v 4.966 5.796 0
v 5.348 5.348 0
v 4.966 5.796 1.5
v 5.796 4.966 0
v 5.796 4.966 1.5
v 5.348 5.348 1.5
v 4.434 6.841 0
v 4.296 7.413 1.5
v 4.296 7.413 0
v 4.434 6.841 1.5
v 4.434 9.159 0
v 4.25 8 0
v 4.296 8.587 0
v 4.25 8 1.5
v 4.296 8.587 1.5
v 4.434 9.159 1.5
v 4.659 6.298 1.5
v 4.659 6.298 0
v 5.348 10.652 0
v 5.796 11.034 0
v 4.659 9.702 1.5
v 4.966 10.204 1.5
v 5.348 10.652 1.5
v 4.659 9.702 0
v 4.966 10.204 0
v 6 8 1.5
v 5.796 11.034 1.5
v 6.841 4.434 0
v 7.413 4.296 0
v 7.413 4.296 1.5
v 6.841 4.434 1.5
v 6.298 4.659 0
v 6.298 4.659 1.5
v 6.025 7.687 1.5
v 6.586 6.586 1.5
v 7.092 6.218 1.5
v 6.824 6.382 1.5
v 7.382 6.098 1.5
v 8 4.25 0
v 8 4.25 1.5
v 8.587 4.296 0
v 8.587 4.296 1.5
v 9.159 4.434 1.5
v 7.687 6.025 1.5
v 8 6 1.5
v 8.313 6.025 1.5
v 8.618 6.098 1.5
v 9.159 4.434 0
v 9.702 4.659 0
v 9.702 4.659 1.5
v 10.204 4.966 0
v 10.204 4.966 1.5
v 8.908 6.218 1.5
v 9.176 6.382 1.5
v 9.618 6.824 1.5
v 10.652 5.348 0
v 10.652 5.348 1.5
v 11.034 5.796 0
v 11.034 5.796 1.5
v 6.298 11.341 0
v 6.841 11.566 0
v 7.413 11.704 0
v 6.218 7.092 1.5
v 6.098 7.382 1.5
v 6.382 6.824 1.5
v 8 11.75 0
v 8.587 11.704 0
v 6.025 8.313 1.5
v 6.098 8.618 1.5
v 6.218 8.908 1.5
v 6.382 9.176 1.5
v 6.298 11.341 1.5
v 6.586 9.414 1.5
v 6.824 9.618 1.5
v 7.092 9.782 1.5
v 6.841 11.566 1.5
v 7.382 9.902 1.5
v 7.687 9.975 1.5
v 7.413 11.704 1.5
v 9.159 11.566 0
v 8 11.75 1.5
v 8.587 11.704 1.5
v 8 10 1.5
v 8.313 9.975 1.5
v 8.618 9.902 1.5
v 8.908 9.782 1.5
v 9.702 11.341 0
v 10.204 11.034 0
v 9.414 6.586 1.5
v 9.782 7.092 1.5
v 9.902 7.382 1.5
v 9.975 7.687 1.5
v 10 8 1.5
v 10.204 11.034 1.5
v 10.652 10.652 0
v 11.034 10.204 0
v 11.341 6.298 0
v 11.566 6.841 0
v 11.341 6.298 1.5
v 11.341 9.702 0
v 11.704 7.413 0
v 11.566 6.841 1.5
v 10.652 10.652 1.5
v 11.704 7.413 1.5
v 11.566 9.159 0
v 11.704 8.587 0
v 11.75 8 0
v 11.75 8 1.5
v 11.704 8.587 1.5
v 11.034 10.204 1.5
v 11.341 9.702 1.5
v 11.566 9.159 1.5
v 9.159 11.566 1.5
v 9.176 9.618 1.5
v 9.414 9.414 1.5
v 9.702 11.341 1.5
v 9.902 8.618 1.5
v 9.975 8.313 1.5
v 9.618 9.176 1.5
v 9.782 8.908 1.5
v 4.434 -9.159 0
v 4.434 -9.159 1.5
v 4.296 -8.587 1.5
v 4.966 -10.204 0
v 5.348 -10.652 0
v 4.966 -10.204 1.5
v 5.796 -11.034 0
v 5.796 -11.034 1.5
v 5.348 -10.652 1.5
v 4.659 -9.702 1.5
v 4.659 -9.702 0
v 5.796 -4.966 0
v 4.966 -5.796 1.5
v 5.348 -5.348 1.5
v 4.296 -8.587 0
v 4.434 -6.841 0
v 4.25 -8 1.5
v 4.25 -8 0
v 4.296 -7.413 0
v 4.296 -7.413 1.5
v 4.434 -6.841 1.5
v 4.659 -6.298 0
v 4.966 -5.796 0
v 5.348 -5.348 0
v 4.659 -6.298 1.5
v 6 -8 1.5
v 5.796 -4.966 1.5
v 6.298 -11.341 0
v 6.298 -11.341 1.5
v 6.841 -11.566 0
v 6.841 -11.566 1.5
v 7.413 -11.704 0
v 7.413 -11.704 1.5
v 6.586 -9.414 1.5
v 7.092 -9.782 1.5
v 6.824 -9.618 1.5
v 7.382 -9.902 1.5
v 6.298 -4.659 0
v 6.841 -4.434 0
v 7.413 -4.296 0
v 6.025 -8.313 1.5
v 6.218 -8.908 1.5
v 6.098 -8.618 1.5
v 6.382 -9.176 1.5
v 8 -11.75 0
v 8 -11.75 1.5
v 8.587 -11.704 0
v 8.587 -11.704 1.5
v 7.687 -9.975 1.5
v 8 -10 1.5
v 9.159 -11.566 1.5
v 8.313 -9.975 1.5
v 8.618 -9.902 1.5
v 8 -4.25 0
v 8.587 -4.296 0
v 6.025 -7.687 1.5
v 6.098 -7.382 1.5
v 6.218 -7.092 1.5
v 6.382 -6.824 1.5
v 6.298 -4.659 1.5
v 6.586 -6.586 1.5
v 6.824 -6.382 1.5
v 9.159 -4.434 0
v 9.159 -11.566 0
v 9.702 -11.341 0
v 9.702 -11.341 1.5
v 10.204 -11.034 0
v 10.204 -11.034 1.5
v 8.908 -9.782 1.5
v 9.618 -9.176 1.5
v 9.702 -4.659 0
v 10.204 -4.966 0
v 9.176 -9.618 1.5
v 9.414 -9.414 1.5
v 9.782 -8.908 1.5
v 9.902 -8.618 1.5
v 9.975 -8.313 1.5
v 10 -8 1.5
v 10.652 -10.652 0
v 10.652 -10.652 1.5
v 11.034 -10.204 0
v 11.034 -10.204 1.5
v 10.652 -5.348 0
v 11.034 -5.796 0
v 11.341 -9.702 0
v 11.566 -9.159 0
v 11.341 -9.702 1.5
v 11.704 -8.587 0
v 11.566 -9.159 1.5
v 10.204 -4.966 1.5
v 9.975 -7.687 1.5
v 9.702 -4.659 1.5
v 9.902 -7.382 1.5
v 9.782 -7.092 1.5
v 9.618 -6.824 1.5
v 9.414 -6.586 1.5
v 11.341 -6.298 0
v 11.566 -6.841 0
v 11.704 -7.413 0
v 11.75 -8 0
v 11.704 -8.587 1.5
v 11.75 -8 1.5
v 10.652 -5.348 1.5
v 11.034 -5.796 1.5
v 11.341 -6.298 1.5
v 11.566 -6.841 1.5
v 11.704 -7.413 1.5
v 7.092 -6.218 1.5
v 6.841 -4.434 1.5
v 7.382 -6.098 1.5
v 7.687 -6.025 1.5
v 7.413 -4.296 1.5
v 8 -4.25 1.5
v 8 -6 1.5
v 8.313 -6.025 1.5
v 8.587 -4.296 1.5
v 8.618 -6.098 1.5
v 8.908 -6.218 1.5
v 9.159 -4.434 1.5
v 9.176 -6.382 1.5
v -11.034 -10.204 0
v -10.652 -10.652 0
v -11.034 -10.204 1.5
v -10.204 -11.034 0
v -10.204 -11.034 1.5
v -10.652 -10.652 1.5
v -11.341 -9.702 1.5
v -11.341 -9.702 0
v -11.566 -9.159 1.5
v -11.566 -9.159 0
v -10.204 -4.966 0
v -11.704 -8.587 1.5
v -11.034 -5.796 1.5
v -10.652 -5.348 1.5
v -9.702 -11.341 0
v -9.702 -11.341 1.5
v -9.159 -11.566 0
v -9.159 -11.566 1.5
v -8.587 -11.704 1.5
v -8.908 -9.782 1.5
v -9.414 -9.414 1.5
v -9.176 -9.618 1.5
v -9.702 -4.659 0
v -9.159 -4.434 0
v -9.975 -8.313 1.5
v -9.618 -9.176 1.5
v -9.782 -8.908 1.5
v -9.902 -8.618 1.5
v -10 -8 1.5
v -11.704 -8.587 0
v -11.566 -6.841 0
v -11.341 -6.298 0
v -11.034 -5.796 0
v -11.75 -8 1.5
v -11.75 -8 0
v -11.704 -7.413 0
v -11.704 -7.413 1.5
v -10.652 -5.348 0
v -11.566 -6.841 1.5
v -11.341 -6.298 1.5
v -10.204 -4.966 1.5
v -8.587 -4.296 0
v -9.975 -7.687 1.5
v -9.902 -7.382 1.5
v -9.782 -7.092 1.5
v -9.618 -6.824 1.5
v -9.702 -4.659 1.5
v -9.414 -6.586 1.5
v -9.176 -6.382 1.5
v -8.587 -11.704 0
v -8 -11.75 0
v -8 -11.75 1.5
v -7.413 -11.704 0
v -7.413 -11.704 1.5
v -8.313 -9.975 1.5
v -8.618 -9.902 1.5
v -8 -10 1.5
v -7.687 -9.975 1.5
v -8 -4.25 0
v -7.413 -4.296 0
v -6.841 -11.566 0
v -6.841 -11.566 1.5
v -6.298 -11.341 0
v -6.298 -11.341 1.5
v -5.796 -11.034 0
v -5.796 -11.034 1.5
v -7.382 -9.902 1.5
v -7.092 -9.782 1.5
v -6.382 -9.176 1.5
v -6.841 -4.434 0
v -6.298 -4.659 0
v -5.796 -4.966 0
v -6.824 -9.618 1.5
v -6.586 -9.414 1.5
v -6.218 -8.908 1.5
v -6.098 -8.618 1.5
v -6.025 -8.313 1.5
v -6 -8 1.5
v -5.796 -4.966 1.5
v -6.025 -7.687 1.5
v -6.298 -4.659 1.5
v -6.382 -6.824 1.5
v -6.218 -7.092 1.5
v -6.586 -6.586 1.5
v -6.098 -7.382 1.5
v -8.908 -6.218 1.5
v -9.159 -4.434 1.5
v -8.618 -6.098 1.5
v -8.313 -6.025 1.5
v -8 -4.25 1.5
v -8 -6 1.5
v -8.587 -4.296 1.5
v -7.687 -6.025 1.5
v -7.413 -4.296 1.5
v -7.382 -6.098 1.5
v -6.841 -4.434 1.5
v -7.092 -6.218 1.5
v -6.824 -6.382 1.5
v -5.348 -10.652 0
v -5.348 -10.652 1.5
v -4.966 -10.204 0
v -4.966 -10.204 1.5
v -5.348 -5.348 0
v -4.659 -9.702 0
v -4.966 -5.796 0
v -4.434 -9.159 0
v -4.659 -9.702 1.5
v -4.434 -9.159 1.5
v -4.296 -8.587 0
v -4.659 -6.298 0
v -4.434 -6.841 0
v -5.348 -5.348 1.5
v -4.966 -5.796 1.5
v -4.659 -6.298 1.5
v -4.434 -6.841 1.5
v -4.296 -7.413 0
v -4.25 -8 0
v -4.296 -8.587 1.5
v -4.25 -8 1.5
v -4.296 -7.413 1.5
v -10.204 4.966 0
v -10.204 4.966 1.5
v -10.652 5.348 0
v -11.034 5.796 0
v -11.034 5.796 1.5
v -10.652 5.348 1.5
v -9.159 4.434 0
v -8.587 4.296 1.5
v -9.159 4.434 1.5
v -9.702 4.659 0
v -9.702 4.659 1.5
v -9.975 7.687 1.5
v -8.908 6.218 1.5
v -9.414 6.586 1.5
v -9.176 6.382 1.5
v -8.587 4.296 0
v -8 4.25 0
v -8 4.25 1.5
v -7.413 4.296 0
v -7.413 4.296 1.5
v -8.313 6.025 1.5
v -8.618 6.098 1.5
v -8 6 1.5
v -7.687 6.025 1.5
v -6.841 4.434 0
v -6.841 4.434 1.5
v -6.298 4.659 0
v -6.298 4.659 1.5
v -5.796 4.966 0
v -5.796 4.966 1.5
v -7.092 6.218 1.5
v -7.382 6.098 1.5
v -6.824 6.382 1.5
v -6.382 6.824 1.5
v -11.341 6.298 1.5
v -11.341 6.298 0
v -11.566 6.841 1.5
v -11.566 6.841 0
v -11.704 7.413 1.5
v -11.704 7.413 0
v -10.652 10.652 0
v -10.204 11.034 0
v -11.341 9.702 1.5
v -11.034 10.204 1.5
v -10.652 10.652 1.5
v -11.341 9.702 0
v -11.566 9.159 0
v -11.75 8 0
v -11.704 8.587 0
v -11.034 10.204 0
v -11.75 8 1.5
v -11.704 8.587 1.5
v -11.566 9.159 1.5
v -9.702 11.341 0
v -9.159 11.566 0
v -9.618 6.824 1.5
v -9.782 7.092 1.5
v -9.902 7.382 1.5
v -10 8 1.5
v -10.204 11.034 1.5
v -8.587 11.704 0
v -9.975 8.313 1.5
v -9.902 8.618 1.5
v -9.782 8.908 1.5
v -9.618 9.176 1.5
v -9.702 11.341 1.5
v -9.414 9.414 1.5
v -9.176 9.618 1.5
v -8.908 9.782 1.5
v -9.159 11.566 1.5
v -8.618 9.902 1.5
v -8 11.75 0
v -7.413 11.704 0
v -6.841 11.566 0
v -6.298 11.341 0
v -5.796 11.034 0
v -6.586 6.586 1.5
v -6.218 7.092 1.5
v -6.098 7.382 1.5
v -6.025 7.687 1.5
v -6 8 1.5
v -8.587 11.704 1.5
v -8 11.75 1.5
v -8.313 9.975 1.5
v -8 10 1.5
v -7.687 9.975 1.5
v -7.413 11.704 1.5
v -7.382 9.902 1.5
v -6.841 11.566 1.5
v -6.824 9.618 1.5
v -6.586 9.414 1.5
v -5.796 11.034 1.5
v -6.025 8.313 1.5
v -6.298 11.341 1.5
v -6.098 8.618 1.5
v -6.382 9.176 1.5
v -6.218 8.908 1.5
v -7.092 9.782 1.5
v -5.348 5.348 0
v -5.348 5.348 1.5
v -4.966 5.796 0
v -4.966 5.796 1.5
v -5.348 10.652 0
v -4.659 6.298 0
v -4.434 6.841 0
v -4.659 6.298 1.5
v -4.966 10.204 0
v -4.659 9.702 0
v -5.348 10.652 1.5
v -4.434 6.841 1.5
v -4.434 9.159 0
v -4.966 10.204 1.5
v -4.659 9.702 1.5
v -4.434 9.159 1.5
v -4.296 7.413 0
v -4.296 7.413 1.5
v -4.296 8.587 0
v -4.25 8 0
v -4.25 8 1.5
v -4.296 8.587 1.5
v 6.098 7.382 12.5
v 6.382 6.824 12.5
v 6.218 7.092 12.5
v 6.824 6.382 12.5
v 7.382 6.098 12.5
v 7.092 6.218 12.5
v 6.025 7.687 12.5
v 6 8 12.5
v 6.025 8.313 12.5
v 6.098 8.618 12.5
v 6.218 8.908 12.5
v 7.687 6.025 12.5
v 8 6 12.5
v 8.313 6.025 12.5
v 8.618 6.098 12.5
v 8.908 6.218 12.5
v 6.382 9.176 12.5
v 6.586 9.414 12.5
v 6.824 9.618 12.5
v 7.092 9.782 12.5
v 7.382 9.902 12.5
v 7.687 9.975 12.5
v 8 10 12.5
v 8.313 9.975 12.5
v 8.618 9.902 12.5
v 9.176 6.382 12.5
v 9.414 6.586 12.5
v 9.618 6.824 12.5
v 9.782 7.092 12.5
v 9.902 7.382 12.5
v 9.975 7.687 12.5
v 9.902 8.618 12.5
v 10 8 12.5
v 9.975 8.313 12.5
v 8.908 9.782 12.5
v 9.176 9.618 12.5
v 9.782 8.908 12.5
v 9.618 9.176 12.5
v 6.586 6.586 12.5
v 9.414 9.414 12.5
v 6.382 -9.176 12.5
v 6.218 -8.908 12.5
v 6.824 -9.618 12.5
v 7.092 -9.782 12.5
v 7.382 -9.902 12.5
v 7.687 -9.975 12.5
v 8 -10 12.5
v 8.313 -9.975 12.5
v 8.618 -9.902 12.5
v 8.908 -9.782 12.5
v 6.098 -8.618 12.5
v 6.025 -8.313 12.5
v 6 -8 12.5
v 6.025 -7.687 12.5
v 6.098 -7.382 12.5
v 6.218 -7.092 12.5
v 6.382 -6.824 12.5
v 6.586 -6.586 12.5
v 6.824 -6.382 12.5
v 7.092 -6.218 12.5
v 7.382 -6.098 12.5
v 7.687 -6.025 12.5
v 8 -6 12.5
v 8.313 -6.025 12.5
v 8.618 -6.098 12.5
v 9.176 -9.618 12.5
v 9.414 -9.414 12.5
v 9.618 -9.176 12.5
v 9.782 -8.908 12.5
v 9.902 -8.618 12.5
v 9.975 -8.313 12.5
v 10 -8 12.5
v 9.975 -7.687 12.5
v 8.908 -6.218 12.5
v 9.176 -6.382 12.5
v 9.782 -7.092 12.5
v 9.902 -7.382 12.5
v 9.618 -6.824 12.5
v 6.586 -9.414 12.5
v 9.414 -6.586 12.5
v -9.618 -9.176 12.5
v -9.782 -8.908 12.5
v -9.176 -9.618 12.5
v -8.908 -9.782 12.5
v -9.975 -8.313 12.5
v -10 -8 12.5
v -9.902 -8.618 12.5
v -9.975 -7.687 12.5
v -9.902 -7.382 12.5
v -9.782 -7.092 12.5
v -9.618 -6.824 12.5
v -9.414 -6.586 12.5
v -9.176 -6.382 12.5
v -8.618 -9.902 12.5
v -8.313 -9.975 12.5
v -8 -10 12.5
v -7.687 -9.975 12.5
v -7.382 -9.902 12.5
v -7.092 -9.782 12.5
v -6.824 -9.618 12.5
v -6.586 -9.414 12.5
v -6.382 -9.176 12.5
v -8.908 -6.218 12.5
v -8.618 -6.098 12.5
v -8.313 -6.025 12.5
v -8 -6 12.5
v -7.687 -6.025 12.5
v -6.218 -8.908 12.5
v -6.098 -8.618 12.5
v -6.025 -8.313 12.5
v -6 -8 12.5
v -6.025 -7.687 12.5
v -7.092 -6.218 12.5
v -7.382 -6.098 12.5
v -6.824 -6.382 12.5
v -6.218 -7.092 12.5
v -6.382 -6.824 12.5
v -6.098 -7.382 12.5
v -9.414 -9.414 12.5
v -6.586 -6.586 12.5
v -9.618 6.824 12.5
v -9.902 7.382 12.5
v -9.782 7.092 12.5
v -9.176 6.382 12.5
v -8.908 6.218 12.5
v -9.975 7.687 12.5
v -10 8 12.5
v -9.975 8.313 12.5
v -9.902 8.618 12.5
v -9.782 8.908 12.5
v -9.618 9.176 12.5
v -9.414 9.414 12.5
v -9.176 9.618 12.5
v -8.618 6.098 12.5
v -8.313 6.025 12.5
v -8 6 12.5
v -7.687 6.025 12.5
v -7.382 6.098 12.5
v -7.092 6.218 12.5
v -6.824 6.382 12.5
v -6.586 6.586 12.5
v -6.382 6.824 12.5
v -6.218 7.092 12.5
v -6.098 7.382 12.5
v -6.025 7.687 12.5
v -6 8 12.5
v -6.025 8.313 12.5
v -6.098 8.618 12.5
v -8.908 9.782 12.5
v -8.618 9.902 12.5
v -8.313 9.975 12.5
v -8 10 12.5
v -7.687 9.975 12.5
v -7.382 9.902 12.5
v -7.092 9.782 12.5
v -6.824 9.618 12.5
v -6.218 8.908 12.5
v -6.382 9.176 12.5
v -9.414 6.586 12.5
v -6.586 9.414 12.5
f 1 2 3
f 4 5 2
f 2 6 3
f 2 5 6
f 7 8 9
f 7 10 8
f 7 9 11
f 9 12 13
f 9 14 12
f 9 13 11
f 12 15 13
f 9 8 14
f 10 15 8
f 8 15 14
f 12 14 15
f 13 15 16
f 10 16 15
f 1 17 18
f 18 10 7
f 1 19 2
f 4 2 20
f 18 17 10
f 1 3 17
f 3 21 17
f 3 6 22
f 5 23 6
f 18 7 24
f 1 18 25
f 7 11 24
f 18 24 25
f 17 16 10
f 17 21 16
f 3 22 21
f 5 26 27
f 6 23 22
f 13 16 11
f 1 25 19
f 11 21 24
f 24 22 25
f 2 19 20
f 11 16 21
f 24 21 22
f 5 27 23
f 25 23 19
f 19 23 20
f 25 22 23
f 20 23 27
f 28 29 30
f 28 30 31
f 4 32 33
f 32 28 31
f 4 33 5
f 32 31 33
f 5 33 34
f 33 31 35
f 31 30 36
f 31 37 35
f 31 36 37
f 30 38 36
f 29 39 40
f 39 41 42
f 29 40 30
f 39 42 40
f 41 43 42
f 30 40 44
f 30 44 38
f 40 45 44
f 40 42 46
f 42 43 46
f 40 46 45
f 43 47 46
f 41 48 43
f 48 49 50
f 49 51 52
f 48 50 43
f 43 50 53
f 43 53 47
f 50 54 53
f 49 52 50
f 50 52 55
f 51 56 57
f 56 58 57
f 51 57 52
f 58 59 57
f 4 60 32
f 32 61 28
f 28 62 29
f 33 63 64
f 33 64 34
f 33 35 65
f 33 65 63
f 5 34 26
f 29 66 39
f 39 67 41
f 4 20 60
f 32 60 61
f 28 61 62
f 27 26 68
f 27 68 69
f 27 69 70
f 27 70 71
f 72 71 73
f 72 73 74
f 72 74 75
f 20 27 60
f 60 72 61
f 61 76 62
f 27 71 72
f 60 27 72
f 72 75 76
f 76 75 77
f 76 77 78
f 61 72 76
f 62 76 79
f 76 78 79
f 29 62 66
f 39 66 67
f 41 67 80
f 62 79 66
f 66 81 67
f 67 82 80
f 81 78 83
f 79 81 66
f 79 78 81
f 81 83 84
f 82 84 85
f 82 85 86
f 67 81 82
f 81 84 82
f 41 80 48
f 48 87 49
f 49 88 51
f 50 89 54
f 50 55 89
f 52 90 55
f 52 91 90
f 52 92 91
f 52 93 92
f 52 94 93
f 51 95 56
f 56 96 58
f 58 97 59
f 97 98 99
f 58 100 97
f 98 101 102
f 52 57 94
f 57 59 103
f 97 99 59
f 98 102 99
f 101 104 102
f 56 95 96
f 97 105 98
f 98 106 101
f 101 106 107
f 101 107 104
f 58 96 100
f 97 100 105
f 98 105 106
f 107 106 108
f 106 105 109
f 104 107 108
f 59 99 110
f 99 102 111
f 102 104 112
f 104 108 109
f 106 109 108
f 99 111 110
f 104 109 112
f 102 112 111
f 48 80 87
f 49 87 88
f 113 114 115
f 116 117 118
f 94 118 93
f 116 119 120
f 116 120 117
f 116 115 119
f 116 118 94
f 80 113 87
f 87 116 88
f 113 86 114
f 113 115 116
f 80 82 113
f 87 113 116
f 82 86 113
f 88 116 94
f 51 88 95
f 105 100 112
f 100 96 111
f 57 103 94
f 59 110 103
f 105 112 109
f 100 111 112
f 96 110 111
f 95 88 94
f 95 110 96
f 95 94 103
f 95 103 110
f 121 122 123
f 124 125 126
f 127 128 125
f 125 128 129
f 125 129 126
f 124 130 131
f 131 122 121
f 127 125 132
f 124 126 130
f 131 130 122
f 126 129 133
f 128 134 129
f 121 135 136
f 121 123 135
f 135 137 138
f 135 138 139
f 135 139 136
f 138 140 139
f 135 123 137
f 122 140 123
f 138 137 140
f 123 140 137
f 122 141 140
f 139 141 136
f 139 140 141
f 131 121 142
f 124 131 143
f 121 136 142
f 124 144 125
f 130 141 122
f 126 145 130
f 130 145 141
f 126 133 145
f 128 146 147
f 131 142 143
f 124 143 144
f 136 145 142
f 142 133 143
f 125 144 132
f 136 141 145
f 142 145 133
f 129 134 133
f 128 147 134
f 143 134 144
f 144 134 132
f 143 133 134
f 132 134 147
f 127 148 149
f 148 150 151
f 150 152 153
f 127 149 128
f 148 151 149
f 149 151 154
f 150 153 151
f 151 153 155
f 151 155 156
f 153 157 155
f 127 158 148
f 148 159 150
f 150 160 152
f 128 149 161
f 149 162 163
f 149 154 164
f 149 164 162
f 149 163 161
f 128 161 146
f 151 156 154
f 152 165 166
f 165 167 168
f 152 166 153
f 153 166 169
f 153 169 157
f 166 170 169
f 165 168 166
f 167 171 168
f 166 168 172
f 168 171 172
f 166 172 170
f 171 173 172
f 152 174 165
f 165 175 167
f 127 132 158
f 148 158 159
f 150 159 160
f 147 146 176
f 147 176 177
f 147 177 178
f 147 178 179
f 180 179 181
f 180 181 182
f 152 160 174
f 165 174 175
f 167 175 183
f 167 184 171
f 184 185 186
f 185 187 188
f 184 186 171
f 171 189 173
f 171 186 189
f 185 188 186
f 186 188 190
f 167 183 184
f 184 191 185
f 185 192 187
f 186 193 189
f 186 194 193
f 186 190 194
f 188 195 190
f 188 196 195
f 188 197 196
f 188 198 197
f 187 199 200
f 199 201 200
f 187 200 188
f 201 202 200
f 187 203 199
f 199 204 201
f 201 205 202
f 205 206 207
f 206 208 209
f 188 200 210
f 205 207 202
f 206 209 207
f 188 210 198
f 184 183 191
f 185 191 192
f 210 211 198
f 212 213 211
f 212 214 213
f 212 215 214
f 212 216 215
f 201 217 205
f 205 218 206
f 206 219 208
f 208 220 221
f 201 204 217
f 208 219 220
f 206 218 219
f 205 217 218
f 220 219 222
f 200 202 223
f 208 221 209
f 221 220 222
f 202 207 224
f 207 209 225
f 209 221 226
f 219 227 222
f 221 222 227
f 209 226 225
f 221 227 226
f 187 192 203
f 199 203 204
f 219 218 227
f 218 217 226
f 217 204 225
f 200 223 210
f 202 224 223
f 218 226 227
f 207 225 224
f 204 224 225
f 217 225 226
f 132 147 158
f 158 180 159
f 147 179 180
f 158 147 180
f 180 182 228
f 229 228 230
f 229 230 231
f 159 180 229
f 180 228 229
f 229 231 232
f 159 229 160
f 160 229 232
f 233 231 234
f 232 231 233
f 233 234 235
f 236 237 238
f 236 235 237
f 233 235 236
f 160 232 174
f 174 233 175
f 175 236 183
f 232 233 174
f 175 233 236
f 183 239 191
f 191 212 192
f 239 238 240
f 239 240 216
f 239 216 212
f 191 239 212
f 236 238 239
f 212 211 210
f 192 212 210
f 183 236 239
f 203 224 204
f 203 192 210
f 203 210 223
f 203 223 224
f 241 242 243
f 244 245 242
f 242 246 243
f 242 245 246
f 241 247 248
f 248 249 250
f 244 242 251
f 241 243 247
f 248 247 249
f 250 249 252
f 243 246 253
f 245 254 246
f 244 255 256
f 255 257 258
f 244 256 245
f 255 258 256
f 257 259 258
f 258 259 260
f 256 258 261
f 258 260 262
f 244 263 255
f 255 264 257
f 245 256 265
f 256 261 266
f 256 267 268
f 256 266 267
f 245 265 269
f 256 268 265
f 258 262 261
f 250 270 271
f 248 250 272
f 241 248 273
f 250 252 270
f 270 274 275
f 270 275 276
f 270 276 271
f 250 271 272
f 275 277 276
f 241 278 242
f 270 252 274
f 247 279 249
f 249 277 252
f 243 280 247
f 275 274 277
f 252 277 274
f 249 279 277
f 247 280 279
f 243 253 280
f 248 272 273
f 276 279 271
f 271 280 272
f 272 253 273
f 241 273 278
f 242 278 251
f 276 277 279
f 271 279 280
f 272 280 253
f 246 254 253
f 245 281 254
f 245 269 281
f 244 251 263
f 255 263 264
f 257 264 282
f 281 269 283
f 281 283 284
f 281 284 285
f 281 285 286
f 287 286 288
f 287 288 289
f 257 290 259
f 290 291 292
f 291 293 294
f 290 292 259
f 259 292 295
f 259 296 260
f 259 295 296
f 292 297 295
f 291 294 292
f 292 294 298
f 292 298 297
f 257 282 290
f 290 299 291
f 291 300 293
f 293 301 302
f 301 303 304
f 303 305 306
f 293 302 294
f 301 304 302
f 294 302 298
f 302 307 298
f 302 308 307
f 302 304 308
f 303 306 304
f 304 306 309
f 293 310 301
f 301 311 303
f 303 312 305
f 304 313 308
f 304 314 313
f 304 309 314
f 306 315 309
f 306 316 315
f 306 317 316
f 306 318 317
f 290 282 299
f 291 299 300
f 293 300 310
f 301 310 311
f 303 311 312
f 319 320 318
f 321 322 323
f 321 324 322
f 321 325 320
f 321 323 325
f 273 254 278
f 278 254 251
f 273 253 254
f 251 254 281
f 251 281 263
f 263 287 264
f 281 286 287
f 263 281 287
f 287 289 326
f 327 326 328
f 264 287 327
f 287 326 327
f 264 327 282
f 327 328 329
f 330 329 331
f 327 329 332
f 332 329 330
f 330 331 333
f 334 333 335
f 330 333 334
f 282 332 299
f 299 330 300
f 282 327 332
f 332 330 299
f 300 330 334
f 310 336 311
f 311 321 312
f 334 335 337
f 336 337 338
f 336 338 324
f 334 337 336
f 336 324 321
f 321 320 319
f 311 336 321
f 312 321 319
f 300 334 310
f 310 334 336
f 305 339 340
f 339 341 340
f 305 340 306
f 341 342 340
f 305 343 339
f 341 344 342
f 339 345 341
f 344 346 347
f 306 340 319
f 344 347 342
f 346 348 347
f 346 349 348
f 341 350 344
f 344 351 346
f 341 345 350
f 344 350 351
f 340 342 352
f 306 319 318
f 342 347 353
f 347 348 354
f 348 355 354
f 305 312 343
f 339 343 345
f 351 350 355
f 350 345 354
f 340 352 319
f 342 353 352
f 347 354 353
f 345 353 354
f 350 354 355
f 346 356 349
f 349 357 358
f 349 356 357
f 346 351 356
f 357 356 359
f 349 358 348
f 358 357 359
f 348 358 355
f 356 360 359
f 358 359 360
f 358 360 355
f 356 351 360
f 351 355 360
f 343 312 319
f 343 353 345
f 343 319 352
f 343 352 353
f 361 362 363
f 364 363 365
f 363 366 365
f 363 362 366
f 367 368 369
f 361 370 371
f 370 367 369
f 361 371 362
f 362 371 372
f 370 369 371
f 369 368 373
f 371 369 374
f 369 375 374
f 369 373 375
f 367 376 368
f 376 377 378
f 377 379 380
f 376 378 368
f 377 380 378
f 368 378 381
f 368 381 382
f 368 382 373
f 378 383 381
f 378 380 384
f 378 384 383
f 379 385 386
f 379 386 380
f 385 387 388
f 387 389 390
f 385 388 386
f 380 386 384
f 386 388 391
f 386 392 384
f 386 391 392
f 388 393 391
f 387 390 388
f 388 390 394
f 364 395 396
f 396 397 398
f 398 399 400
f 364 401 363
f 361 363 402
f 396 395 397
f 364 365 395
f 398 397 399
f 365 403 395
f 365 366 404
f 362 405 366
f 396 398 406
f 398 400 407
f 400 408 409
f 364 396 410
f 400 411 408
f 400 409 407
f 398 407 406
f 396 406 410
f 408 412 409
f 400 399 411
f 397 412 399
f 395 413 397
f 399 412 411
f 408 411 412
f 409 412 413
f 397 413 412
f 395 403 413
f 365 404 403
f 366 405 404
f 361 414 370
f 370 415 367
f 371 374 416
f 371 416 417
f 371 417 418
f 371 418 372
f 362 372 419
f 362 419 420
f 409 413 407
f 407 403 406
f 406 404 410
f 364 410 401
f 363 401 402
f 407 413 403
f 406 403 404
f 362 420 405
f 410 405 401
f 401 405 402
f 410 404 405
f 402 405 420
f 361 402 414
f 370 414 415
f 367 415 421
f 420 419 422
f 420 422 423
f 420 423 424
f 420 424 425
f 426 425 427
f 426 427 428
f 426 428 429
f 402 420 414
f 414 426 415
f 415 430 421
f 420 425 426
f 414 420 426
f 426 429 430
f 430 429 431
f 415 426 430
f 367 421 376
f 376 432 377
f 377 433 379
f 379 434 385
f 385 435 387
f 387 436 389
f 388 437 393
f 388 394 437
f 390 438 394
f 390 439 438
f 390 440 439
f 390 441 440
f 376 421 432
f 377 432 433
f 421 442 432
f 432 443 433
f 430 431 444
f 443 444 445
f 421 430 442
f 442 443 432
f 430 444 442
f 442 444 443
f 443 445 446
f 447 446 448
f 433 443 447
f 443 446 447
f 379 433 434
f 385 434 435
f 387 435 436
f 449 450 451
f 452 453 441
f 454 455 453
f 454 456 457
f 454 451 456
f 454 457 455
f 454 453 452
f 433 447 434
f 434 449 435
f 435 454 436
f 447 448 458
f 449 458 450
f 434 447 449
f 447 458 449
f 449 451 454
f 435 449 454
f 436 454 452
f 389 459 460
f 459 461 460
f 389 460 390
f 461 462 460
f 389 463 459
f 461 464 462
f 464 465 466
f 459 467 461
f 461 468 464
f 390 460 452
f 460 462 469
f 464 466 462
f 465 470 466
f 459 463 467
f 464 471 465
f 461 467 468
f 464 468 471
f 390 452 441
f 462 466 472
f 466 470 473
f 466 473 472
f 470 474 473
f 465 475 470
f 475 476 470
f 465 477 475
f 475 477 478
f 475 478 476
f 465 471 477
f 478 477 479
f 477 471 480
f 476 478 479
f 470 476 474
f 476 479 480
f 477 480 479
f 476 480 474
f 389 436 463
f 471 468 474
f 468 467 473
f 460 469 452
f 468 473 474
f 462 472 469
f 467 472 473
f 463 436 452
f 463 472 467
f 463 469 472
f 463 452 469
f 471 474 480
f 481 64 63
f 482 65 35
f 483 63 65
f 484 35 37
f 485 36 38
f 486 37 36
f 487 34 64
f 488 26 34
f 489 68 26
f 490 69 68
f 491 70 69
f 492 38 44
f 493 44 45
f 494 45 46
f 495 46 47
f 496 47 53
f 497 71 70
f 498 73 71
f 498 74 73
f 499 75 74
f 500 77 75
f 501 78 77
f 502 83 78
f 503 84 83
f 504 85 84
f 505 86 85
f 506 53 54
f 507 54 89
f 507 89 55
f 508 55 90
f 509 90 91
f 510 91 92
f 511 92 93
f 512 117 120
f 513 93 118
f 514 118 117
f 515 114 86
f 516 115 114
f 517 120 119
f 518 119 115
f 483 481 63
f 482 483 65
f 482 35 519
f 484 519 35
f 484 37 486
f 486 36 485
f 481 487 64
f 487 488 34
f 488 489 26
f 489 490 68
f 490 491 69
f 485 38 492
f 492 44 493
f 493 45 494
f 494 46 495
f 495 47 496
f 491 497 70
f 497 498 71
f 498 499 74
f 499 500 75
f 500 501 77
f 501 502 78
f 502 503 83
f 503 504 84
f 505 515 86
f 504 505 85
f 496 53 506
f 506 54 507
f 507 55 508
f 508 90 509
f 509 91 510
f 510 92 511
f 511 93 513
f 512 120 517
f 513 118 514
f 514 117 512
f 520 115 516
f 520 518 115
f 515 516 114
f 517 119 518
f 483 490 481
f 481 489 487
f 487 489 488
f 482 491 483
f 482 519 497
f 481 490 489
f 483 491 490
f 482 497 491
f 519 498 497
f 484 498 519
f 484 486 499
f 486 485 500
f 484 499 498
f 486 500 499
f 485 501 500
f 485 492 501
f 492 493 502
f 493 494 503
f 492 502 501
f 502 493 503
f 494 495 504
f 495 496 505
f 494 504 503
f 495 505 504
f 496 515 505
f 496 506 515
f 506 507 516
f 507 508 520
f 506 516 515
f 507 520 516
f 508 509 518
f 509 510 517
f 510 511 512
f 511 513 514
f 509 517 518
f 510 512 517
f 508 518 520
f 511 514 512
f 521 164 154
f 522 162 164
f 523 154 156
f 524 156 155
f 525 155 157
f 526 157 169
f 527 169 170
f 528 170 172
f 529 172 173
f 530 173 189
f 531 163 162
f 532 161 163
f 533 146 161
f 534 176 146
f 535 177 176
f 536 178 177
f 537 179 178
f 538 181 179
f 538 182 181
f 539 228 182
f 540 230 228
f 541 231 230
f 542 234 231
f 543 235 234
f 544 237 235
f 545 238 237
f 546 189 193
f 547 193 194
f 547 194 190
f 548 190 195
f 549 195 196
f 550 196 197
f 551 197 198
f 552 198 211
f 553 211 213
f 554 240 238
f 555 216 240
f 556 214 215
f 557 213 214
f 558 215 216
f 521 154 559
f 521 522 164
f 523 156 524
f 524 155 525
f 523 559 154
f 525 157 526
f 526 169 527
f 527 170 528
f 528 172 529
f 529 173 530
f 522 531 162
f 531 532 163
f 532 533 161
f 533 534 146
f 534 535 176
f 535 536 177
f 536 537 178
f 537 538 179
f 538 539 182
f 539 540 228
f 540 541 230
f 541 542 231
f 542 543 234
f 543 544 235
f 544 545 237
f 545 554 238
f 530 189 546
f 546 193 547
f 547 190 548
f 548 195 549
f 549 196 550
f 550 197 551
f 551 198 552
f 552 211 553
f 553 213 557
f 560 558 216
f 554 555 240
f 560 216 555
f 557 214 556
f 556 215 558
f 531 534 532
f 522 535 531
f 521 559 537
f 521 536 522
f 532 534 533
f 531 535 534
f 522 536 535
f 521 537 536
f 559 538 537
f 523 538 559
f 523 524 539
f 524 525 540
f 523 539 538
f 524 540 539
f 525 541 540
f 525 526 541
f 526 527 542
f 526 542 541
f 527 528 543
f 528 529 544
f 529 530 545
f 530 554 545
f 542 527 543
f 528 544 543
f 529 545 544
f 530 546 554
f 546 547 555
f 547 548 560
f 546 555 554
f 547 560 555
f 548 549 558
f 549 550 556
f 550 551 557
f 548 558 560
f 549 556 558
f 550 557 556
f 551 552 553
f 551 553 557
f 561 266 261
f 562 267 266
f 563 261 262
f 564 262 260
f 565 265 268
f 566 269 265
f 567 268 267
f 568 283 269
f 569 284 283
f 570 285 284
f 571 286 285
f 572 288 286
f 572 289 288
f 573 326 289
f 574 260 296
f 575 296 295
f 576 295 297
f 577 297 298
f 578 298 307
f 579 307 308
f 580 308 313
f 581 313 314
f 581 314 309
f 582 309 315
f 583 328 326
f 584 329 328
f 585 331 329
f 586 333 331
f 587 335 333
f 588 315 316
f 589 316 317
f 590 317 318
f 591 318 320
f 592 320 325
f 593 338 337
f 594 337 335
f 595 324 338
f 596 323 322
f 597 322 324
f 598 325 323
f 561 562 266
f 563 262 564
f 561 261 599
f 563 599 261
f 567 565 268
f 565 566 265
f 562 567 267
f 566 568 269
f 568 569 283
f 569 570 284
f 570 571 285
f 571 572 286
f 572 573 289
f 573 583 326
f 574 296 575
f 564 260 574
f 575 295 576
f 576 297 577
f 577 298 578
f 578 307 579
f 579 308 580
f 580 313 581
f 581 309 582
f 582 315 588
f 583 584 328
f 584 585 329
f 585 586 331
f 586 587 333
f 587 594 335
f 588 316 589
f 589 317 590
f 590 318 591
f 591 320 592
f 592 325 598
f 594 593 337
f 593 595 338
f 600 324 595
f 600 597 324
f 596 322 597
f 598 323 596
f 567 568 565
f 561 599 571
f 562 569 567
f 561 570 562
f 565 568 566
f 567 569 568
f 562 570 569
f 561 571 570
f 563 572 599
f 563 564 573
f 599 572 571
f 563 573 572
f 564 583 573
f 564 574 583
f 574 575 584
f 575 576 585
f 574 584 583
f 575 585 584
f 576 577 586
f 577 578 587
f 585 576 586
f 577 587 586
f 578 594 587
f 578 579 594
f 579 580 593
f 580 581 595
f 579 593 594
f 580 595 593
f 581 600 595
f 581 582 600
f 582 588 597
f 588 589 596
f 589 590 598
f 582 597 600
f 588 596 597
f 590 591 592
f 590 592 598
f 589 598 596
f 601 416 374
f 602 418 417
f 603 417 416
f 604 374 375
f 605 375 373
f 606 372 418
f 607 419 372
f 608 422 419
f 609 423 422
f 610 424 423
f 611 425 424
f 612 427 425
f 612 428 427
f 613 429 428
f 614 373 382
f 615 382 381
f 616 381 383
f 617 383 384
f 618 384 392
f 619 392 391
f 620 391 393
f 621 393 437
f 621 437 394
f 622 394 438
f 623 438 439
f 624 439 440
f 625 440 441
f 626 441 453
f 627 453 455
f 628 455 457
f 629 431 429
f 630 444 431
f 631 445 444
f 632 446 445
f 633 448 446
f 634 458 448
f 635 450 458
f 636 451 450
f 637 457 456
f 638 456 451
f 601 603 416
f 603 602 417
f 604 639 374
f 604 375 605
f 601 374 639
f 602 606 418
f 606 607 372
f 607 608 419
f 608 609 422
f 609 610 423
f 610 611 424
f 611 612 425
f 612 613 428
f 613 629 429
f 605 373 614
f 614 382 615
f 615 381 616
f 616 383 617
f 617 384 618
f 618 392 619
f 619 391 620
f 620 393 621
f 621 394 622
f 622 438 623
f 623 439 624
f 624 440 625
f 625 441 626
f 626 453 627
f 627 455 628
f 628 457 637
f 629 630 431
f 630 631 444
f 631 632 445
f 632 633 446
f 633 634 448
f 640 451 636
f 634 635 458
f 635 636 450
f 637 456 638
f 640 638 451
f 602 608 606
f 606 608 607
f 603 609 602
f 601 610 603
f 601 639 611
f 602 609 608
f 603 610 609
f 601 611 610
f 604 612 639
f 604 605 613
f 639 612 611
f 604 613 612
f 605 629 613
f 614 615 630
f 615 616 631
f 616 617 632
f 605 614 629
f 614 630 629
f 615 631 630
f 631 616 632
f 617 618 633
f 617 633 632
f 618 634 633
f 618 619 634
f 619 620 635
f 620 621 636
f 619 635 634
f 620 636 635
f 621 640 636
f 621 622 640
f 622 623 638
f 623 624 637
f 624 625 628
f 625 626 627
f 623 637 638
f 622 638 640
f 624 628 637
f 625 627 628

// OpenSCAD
// ====================================================================
// [PRINT 05-B] Set of 4 Heavy-Duty 4.0mm Axle Pins
// Prints 4 sturdy 4.0mm pins centered on your build plate at Z = 0.
// ZERO SUPPORTS NEEDED!
// ====================================================================

$fn = 40;

module trolley_heavy_duty_pin() {
    cylinder(d = 7.5, h = 1.5);
    translate([0, 0, 1.5])
        cylinder(d = 4.0, h = 11.0);
}

// 4 Pins arranged in a compact square centered on bed at Z = 0
translate([-8.0, -8.0, 0]) trolley_heavy_duty_pin();
translate([-8.0,  8.0, 0]) trolley_heavy_duty_pin();
translate([ 8.0, -8.0, 0]) trolley_heavy_duty_pin();
translate([ 8.0,  8.0, 0]) trolley_heavy_duty_pin();
